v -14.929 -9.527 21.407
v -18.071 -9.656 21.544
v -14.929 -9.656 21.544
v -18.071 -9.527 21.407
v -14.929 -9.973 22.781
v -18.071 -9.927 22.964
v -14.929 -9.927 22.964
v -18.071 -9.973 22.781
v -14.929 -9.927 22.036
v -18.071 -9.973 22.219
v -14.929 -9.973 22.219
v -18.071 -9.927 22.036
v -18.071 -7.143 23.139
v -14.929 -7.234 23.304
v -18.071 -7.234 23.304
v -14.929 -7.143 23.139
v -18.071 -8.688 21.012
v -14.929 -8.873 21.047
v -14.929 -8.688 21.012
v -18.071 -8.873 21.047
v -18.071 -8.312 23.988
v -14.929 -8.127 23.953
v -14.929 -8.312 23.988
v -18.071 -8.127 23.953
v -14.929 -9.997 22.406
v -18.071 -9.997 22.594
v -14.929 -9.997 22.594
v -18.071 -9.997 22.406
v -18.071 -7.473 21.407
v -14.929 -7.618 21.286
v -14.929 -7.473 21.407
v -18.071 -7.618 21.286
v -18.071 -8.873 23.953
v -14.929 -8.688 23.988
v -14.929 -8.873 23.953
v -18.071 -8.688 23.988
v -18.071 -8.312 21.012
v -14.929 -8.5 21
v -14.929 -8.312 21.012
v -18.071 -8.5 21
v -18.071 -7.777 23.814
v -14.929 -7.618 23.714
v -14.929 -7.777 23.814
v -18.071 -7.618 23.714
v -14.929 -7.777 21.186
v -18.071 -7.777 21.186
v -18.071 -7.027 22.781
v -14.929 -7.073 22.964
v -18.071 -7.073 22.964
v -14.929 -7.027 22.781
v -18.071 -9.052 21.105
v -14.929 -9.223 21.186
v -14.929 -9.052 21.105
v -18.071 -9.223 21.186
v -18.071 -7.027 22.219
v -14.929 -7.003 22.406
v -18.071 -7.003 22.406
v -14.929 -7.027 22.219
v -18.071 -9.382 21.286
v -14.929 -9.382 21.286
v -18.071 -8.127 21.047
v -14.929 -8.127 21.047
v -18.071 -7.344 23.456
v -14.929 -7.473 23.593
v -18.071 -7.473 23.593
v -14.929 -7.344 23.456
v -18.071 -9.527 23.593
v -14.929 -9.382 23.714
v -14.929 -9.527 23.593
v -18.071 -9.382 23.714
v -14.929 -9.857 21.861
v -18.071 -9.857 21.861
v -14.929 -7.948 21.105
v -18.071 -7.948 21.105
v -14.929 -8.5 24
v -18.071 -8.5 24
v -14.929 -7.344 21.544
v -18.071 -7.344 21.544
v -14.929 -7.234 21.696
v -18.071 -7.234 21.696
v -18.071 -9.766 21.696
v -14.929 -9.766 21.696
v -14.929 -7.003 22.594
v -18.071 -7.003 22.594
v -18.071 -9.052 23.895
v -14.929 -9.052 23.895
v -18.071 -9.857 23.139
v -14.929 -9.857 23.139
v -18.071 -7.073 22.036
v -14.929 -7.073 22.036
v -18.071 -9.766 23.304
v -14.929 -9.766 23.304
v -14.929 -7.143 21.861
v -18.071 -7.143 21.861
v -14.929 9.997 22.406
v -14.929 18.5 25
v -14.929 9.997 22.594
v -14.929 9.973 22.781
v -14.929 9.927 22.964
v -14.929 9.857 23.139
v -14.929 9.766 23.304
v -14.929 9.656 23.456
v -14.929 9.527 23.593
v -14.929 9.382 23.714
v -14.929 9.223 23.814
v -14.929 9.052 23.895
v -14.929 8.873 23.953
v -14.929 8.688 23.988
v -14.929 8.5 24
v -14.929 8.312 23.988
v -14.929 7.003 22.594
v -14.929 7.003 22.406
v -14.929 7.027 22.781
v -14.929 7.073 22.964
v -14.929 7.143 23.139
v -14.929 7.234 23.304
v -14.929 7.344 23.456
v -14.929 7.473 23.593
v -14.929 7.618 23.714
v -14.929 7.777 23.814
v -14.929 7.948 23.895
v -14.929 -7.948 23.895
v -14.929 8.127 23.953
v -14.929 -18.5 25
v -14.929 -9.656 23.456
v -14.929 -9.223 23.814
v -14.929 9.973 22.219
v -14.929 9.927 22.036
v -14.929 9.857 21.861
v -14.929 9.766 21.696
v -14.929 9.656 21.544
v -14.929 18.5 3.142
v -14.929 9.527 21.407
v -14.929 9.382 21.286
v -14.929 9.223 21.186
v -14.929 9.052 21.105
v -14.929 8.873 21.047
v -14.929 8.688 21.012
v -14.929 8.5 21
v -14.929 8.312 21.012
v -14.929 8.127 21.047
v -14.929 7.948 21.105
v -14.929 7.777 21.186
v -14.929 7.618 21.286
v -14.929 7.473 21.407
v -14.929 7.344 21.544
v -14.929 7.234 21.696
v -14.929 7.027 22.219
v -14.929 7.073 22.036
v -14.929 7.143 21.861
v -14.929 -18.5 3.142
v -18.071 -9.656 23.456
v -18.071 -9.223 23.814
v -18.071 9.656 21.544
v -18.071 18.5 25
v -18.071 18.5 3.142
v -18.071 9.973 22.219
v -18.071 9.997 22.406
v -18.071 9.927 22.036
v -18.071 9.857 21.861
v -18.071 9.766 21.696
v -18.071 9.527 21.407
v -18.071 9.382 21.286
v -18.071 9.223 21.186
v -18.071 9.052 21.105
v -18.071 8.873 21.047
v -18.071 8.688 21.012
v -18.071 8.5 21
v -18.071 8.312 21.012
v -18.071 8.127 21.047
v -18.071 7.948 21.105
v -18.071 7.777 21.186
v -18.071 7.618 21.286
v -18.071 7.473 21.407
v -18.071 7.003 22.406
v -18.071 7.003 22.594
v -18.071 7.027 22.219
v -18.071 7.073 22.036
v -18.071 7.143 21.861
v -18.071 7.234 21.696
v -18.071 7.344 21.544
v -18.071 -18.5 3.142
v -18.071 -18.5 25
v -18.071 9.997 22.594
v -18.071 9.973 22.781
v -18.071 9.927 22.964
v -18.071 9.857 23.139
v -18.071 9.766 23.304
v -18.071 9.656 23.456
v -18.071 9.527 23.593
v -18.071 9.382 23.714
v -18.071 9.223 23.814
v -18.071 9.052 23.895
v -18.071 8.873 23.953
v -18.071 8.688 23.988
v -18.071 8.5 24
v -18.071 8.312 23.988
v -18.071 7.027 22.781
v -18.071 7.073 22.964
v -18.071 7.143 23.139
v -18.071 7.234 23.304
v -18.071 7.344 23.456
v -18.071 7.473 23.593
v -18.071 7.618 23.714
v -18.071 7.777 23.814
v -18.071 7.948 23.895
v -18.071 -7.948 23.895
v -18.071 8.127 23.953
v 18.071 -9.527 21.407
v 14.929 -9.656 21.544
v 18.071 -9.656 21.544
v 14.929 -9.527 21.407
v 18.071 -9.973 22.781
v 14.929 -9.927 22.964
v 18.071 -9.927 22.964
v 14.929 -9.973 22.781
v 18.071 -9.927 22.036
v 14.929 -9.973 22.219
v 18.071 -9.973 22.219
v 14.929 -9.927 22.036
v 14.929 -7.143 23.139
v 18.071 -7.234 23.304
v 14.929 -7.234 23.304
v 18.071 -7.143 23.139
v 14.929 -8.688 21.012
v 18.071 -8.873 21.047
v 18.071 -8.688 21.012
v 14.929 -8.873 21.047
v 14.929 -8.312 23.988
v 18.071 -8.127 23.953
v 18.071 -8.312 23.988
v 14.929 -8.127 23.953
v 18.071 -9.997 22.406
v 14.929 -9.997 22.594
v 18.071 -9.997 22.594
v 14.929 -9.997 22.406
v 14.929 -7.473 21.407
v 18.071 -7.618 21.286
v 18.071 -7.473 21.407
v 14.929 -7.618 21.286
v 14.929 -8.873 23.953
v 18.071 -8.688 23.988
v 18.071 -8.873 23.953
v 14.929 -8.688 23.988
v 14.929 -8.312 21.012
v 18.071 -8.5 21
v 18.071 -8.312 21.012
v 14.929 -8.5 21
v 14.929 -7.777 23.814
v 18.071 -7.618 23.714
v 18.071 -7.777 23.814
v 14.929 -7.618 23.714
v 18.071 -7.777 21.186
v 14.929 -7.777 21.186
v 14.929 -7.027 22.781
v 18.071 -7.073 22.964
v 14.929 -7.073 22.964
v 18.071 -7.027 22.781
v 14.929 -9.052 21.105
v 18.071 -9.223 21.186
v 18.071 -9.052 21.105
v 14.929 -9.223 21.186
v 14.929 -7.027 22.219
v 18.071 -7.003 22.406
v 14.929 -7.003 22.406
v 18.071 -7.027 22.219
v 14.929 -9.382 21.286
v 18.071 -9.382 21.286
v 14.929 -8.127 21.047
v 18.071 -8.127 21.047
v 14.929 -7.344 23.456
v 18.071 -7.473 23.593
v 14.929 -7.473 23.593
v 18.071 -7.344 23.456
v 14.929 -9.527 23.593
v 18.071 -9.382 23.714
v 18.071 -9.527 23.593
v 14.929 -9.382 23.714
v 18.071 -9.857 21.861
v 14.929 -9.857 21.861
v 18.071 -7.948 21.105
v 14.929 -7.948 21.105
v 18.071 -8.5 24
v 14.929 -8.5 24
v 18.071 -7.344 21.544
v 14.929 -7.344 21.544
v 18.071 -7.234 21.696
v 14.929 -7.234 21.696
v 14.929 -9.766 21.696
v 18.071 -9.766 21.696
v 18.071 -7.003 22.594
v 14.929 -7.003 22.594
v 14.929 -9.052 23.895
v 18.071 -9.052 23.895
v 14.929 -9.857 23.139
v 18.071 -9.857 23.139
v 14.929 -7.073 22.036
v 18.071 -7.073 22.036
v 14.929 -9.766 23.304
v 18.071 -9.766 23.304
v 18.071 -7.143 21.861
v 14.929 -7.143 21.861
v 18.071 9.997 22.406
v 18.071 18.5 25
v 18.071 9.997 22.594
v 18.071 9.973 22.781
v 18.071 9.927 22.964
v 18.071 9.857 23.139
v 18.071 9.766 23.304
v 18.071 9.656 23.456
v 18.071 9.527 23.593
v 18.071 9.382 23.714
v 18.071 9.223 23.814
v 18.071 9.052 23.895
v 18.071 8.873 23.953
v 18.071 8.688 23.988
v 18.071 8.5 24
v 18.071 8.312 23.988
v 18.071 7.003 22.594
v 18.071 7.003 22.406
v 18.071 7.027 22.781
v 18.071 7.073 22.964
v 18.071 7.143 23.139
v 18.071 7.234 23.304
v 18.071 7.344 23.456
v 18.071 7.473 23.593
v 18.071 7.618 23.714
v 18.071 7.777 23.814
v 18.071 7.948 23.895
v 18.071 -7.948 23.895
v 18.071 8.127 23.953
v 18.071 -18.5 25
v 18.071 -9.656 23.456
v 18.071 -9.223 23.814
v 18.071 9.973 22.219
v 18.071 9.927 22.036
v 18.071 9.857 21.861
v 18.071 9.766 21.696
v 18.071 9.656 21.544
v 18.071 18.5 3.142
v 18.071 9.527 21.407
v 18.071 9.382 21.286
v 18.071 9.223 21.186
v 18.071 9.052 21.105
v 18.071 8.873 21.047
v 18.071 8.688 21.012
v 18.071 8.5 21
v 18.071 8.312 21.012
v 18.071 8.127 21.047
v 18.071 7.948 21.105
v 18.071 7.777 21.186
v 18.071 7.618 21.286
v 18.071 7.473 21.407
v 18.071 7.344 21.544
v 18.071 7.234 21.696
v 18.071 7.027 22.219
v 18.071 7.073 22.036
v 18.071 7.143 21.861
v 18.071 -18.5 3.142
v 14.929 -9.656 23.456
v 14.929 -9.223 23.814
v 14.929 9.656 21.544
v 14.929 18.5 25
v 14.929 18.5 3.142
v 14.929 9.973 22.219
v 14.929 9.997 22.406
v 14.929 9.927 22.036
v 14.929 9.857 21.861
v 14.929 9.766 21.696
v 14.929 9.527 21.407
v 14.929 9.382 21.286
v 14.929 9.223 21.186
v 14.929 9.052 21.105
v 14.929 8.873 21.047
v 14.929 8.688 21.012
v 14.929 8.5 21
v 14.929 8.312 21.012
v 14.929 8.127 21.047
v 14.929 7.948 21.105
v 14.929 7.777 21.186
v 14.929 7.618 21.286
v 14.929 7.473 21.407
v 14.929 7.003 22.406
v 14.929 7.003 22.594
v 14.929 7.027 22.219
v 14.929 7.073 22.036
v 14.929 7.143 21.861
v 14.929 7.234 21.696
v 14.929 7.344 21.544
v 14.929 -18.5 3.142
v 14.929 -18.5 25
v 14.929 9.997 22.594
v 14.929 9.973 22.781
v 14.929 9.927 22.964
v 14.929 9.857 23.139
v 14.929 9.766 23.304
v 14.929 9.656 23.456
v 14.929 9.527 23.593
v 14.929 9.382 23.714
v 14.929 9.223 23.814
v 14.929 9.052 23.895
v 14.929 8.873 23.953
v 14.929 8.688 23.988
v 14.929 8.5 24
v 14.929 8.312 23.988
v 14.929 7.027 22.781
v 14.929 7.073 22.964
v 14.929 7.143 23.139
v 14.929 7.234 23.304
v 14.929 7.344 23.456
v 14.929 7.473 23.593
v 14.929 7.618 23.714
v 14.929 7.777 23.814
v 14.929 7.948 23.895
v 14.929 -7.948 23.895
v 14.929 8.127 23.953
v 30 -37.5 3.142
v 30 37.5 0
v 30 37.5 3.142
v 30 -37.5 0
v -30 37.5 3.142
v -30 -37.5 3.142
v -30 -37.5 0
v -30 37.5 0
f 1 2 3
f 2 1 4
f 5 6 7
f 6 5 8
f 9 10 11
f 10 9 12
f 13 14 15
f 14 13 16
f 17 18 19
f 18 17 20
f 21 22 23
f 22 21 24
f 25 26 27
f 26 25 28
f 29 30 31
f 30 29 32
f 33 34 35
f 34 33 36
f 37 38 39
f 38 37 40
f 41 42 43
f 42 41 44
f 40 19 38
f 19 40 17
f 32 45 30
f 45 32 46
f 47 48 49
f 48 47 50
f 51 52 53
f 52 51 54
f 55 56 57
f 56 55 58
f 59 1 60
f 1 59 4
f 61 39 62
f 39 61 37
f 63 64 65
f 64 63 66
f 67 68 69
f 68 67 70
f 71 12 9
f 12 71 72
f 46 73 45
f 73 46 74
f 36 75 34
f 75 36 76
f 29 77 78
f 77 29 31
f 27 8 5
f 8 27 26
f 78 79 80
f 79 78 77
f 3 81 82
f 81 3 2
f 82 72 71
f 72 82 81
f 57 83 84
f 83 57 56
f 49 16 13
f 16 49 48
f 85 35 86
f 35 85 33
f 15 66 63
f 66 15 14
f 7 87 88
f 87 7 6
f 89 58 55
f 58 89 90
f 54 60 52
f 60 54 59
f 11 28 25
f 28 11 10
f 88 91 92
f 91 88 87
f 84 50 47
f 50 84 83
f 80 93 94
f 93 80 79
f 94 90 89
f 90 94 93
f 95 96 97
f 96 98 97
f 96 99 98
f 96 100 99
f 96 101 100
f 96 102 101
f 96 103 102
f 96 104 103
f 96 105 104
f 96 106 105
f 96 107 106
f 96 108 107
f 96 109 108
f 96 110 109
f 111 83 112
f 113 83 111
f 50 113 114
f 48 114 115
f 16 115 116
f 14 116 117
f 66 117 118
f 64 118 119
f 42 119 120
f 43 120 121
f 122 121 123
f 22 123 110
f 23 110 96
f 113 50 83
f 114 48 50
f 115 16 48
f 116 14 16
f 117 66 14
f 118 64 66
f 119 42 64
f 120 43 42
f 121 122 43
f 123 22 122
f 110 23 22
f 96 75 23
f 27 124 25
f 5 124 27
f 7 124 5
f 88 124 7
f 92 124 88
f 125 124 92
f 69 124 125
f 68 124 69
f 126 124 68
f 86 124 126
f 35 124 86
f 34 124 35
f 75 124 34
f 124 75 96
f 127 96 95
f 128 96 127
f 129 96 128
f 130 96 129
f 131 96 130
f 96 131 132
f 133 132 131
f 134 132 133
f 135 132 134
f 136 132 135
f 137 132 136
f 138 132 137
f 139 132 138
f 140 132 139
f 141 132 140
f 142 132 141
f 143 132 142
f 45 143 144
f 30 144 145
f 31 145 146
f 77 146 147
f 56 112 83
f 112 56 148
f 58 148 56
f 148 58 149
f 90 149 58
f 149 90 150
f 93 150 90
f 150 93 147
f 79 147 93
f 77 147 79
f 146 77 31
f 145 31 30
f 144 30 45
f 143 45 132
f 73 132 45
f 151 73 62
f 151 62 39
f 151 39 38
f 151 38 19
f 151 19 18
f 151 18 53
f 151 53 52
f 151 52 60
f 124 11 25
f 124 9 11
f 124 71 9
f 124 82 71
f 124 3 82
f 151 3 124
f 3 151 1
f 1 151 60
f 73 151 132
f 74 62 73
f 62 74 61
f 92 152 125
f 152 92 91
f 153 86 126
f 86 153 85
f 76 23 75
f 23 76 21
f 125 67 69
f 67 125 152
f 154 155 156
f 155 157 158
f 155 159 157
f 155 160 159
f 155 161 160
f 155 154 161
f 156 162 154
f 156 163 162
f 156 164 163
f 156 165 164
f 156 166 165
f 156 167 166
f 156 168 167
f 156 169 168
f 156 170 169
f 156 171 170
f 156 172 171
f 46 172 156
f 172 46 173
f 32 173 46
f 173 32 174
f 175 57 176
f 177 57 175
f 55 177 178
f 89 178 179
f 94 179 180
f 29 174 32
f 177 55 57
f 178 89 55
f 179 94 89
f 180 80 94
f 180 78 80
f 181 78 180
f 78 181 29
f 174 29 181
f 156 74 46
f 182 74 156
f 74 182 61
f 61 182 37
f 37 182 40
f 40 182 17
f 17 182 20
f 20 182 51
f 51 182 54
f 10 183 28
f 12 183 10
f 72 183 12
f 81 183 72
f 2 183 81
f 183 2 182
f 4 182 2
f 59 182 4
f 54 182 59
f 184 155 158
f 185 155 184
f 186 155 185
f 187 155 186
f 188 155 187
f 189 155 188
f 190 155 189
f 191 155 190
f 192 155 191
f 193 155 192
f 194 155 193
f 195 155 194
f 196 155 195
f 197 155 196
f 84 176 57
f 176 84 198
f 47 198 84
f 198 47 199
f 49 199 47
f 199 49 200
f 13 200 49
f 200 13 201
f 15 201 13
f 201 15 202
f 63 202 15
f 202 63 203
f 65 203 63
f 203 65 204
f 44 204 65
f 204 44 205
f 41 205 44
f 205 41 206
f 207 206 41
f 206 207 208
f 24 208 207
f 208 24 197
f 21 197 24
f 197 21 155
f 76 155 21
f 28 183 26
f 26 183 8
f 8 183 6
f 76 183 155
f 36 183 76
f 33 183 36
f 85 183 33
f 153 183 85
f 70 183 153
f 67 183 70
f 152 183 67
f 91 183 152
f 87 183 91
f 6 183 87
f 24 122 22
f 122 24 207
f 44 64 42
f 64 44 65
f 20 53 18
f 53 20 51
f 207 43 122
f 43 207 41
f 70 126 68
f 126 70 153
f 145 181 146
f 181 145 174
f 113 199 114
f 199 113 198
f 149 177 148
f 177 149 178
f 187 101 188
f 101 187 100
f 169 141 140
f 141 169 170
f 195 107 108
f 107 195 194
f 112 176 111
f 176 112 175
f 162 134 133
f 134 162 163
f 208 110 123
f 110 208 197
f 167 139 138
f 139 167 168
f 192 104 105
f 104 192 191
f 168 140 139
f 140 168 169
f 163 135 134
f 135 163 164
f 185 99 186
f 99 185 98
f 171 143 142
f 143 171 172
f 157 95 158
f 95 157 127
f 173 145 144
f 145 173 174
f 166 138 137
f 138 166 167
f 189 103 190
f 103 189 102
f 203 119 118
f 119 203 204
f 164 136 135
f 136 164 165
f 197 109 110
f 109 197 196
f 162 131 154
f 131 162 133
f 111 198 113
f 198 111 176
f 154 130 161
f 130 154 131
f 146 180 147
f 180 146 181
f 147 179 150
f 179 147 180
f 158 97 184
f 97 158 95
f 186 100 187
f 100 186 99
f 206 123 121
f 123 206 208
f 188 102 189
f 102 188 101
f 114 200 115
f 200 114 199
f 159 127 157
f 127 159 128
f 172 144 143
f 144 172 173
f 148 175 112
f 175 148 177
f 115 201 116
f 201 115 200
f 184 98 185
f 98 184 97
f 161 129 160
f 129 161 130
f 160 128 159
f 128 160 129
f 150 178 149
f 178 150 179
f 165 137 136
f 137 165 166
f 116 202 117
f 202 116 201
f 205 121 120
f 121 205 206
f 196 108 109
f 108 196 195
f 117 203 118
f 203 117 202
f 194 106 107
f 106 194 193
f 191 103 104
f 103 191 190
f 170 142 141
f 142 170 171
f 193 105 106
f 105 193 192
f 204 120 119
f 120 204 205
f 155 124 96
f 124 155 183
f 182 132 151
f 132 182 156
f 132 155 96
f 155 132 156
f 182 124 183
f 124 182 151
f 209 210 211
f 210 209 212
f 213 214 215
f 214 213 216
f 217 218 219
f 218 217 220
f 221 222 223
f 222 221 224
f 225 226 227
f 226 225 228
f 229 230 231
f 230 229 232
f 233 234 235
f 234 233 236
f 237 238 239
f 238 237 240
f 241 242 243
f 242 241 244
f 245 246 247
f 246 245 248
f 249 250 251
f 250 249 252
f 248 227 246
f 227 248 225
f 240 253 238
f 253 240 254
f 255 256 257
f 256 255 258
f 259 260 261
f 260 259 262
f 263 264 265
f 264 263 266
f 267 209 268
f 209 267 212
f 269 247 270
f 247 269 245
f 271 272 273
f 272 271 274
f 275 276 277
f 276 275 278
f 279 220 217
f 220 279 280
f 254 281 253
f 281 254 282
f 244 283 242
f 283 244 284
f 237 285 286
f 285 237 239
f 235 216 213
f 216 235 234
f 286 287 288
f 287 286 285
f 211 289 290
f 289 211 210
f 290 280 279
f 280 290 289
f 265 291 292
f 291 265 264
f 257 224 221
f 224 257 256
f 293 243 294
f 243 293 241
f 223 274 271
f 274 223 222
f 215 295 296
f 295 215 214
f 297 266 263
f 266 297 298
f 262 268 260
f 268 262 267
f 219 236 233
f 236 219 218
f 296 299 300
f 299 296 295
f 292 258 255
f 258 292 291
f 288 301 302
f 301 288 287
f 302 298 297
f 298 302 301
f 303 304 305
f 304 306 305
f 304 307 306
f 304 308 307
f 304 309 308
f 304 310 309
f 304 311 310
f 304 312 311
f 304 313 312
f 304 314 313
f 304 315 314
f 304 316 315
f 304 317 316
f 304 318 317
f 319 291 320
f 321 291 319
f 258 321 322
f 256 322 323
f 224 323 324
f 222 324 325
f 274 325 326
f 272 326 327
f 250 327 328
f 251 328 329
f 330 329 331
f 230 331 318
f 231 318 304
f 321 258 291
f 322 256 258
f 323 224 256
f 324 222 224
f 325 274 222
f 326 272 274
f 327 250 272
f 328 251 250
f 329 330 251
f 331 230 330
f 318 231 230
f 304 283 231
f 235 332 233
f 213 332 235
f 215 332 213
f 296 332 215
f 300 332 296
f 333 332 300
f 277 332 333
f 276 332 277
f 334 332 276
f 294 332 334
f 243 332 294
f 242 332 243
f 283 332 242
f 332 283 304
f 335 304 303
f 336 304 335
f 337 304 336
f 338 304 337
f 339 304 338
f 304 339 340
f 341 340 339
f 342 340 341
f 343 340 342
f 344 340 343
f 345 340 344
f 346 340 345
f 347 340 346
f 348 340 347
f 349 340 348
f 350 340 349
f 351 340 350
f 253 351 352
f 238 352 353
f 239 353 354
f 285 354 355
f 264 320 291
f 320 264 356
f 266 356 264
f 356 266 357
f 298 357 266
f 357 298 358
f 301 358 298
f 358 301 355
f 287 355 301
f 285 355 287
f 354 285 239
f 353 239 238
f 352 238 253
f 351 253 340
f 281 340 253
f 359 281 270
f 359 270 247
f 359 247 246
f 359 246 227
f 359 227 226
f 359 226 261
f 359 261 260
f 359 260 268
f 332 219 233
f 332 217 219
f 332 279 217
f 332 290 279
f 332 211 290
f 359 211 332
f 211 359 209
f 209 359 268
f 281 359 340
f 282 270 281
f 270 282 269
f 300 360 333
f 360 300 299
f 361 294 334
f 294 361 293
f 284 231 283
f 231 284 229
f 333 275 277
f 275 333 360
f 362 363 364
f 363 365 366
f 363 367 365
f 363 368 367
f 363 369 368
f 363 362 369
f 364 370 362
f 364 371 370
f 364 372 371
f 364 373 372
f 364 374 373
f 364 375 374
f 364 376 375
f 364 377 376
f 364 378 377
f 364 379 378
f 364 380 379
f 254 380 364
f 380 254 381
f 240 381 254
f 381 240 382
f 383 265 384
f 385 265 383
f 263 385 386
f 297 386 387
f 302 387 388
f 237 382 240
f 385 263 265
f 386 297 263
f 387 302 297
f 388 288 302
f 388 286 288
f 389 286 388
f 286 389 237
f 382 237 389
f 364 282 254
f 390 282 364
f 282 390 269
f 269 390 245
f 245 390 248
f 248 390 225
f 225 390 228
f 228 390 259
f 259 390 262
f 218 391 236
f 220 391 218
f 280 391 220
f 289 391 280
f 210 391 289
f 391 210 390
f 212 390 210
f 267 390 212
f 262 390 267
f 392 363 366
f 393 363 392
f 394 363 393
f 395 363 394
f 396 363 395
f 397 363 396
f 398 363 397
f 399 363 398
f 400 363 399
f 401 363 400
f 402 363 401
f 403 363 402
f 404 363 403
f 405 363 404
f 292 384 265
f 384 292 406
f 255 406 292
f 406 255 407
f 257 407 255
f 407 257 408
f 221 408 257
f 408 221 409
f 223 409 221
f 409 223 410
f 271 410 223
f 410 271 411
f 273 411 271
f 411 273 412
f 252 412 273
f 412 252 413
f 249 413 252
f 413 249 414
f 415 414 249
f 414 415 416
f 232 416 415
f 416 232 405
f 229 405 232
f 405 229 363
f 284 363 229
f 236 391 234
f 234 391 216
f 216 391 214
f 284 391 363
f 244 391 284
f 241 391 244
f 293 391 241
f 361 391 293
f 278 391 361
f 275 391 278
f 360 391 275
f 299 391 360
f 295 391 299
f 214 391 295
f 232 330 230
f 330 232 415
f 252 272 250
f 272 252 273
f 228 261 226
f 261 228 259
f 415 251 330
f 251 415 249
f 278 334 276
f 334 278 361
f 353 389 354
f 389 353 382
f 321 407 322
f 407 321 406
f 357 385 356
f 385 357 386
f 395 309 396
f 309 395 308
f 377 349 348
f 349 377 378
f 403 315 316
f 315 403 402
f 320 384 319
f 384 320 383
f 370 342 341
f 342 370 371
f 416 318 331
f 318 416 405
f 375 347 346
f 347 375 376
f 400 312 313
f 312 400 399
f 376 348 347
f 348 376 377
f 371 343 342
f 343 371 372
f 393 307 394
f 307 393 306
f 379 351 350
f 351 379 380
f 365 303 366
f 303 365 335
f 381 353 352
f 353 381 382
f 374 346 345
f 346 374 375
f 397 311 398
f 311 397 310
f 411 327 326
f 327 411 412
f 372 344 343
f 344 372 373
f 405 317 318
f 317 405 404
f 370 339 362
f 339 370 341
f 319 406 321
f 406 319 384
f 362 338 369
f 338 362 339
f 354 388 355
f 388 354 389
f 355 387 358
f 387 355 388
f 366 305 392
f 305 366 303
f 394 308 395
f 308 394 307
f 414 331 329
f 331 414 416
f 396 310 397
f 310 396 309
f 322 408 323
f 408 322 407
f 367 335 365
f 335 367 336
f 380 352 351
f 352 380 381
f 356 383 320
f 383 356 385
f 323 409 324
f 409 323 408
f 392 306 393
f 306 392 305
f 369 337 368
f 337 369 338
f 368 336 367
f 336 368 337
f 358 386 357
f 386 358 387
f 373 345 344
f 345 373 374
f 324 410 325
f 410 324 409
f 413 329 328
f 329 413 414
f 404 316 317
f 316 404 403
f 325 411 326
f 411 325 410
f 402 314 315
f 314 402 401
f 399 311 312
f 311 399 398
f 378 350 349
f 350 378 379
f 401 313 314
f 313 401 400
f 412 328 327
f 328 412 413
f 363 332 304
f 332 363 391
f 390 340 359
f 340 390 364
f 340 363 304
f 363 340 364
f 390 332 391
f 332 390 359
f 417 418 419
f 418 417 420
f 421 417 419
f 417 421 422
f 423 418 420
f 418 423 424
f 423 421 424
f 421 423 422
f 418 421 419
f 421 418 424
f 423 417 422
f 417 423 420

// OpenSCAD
// Parameters
base_size = [60, 75, PI]; // width, depth, height
pillar_size = [PI, 37, 25 - PI]; // width, depth, height
pillar_spacing = 33; // distance between the centers of the pillars
hole_diameter = 3; // Diameter of the screw holes
top_edge_offset = 2.5; // Offset from the top edge for hole placement (prev:5)
side_edge_offset = 10; // Offset from the side edge for hole placement (prev:11)
hole_facets = 50; // Number of facets for the hole cylinder


// Modules
module base() {
    cube(base_size);
}

module pillar_with_holes() {
    difference() {
        cube(pillar_size);
        // Create horizontal holes that go all the way through the pillar
        for (y = [side_edge_offset, pillar_size[1] - side_edge_offset]) {
            translate([0, y, pillar_size[2] - top_edge_offset]) {
                rotate([0, 90, 0]) cylinder(h = pillar_size[0], d = hole_diameter, $fn = hole_facets);
            }
        }
    }
}

// Create the base
translate([-base_size[0]/2, -base_size[1]/2, 0]) {
    base();
}

// Create the first pillar with holes
translate([-pillar_spacing/2 - pillar_size[0]/2, -pillar_size[1]/2, base_size[2]]) {
    pillar_with_holes();
}

// Create the second pillar with holes
translate([pillar_spacing/2 - pillar_size[0]/2, -pillar_size[1]/2, base_size[2]]) {
    pillar_with_holes();
}
